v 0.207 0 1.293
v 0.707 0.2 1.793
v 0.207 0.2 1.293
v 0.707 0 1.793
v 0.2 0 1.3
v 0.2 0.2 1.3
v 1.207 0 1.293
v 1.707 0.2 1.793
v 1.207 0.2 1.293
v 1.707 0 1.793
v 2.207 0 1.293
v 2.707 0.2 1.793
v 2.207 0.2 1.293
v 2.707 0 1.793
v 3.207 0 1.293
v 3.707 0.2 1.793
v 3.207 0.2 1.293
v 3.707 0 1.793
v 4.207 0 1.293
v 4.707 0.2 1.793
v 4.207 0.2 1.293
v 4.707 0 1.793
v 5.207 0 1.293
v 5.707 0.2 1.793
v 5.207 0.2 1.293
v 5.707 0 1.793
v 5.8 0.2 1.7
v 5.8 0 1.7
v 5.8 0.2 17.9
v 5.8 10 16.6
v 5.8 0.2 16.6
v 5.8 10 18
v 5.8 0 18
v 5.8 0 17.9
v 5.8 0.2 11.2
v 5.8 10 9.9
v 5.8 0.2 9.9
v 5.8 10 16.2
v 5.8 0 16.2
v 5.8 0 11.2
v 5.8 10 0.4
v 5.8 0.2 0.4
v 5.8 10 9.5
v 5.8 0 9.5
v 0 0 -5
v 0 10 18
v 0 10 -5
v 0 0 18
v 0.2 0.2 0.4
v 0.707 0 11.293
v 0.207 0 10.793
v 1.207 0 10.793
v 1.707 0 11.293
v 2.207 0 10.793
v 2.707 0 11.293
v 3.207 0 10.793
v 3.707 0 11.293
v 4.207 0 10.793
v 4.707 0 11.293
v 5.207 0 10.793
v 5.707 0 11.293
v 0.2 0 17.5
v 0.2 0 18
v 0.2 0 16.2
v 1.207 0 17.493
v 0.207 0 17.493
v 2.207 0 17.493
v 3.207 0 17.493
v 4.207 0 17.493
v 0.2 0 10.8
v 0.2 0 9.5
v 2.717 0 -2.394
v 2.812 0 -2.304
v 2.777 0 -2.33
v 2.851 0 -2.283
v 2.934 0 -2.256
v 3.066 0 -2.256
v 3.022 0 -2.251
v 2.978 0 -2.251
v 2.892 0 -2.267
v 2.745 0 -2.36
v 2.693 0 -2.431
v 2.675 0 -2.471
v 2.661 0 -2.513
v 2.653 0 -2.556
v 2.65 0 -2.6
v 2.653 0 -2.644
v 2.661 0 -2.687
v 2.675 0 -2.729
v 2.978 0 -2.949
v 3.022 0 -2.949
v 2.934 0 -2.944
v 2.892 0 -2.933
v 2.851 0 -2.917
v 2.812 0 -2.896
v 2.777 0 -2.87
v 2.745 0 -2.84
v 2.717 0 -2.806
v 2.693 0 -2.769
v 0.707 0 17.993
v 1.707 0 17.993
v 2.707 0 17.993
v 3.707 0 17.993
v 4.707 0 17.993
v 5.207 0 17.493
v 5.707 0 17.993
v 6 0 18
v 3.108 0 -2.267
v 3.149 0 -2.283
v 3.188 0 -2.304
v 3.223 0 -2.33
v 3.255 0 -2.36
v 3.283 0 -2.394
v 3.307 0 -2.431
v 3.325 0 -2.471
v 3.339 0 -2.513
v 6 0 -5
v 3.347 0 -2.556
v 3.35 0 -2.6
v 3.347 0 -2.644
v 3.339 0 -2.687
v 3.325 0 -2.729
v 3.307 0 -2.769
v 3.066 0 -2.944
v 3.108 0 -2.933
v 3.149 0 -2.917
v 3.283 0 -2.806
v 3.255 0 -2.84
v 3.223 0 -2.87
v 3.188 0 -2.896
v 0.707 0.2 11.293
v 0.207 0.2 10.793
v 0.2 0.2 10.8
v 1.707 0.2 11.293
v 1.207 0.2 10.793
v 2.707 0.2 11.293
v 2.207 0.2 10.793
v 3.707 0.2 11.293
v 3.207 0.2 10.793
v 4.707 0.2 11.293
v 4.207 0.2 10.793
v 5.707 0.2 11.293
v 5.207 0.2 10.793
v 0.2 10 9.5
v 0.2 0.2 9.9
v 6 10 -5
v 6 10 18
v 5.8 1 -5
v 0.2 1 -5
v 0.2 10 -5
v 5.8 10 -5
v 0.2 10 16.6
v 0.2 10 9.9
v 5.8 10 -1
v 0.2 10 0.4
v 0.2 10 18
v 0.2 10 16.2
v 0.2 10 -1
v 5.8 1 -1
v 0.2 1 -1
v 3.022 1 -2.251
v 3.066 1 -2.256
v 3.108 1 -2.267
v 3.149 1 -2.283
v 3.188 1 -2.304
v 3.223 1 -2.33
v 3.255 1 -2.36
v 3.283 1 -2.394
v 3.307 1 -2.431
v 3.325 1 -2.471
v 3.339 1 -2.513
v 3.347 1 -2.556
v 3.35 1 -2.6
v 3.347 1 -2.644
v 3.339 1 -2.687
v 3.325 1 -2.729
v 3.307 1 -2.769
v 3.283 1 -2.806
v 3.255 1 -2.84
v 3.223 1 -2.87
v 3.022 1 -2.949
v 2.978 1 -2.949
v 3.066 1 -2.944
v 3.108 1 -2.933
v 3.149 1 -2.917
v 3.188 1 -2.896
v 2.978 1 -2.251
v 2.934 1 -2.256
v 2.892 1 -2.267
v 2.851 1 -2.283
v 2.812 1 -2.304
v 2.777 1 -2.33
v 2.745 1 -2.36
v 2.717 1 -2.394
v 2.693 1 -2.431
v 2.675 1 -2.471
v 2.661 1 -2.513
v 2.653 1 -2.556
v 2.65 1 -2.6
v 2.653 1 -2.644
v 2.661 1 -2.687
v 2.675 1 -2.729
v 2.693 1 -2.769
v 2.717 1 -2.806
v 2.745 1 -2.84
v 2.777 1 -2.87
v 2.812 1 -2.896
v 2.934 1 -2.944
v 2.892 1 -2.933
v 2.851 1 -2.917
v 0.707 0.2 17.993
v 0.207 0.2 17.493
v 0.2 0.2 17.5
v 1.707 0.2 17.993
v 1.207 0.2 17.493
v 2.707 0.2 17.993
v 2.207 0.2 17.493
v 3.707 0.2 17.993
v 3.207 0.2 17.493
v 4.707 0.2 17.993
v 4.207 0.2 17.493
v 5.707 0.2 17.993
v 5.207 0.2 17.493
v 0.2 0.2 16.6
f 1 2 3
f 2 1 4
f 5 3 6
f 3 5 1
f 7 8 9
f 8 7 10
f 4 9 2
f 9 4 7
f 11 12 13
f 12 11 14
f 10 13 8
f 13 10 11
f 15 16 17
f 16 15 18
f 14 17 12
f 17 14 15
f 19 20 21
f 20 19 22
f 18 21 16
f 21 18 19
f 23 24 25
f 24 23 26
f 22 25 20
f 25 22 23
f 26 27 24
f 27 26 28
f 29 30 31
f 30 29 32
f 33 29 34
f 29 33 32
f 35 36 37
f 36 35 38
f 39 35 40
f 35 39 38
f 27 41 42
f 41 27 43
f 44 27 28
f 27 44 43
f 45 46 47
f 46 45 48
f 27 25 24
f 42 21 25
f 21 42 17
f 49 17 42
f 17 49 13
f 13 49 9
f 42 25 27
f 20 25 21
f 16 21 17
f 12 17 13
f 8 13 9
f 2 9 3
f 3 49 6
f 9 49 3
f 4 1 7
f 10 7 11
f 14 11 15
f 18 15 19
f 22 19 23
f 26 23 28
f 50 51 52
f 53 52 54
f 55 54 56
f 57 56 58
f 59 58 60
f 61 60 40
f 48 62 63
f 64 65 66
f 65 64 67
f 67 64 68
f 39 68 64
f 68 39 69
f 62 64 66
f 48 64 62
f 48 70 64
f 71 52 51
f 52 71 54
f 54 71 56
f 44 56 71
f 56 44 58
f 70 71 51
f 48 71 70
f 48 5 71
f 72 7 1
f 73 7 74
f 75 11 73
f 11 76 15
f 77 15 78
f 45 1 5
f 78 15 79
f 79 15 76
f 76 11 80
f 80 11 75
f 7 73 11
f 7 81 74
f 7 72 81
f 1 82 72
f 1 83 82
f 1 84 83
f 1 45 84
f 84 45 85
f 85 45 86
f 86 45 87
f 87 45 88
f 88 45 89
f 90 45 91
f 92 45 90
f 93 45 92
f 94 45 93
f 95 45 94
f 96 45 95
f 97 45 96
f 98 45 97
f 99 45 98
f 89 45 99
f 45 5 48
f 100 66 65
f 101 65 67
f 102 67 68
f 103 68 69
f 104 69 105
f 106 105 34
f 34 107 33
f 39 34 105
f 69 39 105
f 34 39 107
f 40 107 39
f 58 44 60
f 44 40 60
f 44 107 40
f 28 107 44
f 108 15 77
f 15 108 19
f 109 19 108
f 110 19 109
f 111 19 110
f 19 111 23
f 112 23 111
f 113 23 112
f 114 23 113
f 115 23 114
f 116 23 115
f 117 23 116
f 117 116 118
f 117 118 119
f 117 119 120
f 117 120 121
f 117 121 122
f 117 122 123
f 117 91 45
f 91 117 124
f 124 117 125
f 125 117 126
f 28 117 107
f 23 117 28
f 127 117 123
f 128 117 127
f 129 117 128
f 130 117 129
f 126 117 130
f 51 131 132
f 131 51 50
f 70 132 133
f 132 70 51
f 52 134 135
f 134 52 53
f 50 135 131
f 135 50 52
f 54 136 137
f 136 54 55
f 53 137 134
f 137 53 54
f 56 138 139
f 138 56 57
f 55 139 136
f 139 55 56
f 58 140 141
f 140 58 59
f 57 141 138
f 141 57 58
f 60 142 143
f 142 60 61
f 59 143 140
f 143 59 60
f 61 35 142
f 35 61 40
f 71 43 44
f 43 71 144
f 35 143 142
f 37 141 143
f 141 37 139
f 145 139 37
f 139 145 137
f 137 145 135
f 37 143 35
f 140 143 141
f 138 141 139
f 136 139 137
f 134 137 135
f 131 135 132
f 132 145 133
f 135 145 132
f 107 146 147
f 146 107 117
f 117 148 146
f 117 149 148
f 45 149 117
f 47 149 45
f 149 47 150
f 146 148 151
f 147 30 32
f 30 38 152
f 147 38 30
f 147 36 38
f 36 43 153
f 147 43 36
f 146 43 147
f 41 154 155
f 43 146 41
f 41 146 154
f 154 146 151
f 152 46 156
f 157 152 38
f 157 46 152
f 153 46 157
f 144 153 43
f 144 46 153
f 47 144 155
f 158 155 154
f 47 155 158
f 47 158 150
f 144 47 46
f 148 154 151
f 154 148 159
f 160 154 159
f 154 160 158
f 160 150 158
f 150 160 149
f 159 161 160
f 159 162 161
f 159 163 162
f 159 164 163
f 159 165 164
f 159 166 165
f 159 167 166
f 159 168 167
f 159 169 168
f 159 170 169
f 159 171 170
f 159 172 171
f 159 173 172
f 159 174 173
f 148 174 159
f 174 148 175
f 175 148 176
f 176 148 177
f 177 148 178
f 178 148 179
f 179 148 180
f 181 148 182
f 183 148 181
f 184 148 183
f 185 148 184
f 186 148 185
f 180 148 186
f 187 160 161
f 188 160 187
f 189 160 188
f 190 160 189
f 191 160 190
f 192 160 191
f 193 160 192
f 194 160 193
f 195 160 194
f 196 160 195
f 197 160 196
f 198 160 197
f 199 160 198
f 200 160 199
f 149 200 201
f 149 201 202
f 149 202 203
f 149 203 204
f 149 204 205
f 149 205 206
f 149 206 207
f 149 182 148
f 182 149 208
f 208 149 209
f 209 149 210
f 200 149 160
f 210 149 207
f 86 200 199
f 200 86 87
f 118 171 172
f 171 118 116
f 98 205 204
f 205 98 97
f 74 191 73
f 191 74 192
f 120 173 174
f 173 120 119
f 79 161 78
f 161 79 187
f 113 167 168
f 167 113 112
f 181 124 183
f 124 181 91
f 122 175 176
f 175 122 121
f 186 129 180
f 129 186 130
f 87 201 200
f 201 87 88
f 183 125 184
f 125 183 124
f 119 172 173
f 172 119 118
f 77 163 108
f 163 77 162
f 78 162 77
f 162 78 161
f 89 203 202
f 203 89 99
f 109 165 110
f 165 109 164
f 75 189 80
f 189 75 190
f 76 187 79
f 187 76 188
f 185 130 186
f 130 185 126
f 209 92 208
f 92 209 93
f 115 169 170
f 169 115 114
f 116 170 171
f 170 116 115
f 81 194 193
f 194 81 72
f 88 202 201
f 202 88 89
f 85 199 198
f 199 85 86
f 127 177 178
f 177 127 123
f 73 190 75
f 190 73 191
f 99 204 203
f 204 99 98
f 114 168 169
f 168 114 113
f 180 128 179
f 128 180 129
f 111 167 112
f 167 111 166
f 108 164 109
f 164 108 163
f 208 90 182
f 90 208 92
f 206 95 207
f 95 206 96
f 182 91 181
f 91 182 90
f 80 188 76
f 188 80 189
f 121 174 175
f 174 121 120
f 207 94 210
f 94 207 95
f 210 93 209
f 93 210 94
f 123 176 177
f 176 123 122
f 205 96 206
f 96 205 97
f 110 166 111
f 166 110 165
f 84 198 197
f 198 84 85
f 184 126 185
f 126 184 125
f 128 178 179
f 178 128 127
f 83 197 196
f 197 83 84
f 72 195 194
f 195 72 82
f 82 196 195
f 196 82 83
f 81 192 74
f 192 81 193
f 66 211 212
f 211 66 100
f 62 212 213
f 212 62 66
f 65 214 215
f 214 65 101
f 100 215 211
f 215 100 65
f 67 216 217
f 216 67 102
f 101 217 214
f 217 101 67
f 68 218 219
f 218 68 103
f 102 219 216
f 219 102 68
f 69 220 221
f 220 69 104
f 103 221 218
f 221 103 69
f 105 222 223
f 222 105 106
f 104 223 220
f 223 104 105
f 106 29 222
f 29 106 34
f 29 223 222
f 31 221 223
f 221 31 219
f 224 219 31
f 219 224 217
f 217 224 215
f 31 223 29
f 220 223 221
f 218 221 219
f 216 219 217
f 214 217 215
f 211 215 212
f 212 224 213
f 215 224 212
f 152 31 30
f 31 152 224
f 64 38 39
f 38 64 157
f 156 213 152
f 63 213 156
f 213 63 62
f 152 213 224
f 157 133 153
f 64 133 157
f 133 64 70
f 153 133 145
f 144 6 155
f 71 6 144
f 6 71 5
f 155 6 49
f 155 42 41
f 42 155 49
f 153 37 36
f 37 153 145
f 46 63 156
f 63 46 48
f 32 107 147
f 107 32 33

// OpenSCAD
$fn=50;
h_top = 8.5;
h_bottom = 9.5;
n_blocks = 13;
depth = 10;
//                Top of of the cathedral
// <----------------------------------------------------


floor_thickness = 4;
cathedral_width = 5.6;

//                Height of the Red Book

wall_thickness = 0.2;
module floor_decor() {
  difference() {
    cube([wall_thickness + cathedral_width, 0.2, 2.0]);
    for(i=[0:6]) { translate([-0.5 + i,-0.2,2.0]) rotate([0,45,0]) cube([1,1,1]);}
  }
}
module floors() {
  translate([wall_thickness,0, h_bottom+h_top-1.8]) cube([cathedral_width,depth,.4]);
  translate([0,0,h_bottom+h_top-1.8]) floor_decor();
  cube([wall_thickness + cathedral_width,depth,.4]);
  translate([wall_thickness,0, h_bottom]) cube([cathedral_width,depth,.4]);
  translate([0,0,h_bottom]) floor_decor();
  cube([wall_thickness + cathedral_width,depth,.4]);
  floor_decor();
}

floors();

// <---------------------------------------------------




cm_per_block = h_bottom/n_blocks;
cube([wall_thickness, 10, h_bottom+h_top]);
translate([cathedral_width + wall_thickness ,0,0])
  cube([wall_thickness, 10, h_bottom+h_top]);
// ==========

//
//     Motor Housing
//

housing_height = 5;
hole_height = 2.4;
difference() {
translate([0,0, -housing_height]) cube([cathedral_width + wall_thickness * 2 ,depth, housing_height]);
translate([wall_thickness,1, -housing_height-1]) cube([cathedral_width,depth, housing_height]);
translate([wall_thickness + cathedral_width/2, 0, -housing_height + hole_height]) rotate([90,0,0]) cylinder(h=20, d=0.7, center=true);
}
